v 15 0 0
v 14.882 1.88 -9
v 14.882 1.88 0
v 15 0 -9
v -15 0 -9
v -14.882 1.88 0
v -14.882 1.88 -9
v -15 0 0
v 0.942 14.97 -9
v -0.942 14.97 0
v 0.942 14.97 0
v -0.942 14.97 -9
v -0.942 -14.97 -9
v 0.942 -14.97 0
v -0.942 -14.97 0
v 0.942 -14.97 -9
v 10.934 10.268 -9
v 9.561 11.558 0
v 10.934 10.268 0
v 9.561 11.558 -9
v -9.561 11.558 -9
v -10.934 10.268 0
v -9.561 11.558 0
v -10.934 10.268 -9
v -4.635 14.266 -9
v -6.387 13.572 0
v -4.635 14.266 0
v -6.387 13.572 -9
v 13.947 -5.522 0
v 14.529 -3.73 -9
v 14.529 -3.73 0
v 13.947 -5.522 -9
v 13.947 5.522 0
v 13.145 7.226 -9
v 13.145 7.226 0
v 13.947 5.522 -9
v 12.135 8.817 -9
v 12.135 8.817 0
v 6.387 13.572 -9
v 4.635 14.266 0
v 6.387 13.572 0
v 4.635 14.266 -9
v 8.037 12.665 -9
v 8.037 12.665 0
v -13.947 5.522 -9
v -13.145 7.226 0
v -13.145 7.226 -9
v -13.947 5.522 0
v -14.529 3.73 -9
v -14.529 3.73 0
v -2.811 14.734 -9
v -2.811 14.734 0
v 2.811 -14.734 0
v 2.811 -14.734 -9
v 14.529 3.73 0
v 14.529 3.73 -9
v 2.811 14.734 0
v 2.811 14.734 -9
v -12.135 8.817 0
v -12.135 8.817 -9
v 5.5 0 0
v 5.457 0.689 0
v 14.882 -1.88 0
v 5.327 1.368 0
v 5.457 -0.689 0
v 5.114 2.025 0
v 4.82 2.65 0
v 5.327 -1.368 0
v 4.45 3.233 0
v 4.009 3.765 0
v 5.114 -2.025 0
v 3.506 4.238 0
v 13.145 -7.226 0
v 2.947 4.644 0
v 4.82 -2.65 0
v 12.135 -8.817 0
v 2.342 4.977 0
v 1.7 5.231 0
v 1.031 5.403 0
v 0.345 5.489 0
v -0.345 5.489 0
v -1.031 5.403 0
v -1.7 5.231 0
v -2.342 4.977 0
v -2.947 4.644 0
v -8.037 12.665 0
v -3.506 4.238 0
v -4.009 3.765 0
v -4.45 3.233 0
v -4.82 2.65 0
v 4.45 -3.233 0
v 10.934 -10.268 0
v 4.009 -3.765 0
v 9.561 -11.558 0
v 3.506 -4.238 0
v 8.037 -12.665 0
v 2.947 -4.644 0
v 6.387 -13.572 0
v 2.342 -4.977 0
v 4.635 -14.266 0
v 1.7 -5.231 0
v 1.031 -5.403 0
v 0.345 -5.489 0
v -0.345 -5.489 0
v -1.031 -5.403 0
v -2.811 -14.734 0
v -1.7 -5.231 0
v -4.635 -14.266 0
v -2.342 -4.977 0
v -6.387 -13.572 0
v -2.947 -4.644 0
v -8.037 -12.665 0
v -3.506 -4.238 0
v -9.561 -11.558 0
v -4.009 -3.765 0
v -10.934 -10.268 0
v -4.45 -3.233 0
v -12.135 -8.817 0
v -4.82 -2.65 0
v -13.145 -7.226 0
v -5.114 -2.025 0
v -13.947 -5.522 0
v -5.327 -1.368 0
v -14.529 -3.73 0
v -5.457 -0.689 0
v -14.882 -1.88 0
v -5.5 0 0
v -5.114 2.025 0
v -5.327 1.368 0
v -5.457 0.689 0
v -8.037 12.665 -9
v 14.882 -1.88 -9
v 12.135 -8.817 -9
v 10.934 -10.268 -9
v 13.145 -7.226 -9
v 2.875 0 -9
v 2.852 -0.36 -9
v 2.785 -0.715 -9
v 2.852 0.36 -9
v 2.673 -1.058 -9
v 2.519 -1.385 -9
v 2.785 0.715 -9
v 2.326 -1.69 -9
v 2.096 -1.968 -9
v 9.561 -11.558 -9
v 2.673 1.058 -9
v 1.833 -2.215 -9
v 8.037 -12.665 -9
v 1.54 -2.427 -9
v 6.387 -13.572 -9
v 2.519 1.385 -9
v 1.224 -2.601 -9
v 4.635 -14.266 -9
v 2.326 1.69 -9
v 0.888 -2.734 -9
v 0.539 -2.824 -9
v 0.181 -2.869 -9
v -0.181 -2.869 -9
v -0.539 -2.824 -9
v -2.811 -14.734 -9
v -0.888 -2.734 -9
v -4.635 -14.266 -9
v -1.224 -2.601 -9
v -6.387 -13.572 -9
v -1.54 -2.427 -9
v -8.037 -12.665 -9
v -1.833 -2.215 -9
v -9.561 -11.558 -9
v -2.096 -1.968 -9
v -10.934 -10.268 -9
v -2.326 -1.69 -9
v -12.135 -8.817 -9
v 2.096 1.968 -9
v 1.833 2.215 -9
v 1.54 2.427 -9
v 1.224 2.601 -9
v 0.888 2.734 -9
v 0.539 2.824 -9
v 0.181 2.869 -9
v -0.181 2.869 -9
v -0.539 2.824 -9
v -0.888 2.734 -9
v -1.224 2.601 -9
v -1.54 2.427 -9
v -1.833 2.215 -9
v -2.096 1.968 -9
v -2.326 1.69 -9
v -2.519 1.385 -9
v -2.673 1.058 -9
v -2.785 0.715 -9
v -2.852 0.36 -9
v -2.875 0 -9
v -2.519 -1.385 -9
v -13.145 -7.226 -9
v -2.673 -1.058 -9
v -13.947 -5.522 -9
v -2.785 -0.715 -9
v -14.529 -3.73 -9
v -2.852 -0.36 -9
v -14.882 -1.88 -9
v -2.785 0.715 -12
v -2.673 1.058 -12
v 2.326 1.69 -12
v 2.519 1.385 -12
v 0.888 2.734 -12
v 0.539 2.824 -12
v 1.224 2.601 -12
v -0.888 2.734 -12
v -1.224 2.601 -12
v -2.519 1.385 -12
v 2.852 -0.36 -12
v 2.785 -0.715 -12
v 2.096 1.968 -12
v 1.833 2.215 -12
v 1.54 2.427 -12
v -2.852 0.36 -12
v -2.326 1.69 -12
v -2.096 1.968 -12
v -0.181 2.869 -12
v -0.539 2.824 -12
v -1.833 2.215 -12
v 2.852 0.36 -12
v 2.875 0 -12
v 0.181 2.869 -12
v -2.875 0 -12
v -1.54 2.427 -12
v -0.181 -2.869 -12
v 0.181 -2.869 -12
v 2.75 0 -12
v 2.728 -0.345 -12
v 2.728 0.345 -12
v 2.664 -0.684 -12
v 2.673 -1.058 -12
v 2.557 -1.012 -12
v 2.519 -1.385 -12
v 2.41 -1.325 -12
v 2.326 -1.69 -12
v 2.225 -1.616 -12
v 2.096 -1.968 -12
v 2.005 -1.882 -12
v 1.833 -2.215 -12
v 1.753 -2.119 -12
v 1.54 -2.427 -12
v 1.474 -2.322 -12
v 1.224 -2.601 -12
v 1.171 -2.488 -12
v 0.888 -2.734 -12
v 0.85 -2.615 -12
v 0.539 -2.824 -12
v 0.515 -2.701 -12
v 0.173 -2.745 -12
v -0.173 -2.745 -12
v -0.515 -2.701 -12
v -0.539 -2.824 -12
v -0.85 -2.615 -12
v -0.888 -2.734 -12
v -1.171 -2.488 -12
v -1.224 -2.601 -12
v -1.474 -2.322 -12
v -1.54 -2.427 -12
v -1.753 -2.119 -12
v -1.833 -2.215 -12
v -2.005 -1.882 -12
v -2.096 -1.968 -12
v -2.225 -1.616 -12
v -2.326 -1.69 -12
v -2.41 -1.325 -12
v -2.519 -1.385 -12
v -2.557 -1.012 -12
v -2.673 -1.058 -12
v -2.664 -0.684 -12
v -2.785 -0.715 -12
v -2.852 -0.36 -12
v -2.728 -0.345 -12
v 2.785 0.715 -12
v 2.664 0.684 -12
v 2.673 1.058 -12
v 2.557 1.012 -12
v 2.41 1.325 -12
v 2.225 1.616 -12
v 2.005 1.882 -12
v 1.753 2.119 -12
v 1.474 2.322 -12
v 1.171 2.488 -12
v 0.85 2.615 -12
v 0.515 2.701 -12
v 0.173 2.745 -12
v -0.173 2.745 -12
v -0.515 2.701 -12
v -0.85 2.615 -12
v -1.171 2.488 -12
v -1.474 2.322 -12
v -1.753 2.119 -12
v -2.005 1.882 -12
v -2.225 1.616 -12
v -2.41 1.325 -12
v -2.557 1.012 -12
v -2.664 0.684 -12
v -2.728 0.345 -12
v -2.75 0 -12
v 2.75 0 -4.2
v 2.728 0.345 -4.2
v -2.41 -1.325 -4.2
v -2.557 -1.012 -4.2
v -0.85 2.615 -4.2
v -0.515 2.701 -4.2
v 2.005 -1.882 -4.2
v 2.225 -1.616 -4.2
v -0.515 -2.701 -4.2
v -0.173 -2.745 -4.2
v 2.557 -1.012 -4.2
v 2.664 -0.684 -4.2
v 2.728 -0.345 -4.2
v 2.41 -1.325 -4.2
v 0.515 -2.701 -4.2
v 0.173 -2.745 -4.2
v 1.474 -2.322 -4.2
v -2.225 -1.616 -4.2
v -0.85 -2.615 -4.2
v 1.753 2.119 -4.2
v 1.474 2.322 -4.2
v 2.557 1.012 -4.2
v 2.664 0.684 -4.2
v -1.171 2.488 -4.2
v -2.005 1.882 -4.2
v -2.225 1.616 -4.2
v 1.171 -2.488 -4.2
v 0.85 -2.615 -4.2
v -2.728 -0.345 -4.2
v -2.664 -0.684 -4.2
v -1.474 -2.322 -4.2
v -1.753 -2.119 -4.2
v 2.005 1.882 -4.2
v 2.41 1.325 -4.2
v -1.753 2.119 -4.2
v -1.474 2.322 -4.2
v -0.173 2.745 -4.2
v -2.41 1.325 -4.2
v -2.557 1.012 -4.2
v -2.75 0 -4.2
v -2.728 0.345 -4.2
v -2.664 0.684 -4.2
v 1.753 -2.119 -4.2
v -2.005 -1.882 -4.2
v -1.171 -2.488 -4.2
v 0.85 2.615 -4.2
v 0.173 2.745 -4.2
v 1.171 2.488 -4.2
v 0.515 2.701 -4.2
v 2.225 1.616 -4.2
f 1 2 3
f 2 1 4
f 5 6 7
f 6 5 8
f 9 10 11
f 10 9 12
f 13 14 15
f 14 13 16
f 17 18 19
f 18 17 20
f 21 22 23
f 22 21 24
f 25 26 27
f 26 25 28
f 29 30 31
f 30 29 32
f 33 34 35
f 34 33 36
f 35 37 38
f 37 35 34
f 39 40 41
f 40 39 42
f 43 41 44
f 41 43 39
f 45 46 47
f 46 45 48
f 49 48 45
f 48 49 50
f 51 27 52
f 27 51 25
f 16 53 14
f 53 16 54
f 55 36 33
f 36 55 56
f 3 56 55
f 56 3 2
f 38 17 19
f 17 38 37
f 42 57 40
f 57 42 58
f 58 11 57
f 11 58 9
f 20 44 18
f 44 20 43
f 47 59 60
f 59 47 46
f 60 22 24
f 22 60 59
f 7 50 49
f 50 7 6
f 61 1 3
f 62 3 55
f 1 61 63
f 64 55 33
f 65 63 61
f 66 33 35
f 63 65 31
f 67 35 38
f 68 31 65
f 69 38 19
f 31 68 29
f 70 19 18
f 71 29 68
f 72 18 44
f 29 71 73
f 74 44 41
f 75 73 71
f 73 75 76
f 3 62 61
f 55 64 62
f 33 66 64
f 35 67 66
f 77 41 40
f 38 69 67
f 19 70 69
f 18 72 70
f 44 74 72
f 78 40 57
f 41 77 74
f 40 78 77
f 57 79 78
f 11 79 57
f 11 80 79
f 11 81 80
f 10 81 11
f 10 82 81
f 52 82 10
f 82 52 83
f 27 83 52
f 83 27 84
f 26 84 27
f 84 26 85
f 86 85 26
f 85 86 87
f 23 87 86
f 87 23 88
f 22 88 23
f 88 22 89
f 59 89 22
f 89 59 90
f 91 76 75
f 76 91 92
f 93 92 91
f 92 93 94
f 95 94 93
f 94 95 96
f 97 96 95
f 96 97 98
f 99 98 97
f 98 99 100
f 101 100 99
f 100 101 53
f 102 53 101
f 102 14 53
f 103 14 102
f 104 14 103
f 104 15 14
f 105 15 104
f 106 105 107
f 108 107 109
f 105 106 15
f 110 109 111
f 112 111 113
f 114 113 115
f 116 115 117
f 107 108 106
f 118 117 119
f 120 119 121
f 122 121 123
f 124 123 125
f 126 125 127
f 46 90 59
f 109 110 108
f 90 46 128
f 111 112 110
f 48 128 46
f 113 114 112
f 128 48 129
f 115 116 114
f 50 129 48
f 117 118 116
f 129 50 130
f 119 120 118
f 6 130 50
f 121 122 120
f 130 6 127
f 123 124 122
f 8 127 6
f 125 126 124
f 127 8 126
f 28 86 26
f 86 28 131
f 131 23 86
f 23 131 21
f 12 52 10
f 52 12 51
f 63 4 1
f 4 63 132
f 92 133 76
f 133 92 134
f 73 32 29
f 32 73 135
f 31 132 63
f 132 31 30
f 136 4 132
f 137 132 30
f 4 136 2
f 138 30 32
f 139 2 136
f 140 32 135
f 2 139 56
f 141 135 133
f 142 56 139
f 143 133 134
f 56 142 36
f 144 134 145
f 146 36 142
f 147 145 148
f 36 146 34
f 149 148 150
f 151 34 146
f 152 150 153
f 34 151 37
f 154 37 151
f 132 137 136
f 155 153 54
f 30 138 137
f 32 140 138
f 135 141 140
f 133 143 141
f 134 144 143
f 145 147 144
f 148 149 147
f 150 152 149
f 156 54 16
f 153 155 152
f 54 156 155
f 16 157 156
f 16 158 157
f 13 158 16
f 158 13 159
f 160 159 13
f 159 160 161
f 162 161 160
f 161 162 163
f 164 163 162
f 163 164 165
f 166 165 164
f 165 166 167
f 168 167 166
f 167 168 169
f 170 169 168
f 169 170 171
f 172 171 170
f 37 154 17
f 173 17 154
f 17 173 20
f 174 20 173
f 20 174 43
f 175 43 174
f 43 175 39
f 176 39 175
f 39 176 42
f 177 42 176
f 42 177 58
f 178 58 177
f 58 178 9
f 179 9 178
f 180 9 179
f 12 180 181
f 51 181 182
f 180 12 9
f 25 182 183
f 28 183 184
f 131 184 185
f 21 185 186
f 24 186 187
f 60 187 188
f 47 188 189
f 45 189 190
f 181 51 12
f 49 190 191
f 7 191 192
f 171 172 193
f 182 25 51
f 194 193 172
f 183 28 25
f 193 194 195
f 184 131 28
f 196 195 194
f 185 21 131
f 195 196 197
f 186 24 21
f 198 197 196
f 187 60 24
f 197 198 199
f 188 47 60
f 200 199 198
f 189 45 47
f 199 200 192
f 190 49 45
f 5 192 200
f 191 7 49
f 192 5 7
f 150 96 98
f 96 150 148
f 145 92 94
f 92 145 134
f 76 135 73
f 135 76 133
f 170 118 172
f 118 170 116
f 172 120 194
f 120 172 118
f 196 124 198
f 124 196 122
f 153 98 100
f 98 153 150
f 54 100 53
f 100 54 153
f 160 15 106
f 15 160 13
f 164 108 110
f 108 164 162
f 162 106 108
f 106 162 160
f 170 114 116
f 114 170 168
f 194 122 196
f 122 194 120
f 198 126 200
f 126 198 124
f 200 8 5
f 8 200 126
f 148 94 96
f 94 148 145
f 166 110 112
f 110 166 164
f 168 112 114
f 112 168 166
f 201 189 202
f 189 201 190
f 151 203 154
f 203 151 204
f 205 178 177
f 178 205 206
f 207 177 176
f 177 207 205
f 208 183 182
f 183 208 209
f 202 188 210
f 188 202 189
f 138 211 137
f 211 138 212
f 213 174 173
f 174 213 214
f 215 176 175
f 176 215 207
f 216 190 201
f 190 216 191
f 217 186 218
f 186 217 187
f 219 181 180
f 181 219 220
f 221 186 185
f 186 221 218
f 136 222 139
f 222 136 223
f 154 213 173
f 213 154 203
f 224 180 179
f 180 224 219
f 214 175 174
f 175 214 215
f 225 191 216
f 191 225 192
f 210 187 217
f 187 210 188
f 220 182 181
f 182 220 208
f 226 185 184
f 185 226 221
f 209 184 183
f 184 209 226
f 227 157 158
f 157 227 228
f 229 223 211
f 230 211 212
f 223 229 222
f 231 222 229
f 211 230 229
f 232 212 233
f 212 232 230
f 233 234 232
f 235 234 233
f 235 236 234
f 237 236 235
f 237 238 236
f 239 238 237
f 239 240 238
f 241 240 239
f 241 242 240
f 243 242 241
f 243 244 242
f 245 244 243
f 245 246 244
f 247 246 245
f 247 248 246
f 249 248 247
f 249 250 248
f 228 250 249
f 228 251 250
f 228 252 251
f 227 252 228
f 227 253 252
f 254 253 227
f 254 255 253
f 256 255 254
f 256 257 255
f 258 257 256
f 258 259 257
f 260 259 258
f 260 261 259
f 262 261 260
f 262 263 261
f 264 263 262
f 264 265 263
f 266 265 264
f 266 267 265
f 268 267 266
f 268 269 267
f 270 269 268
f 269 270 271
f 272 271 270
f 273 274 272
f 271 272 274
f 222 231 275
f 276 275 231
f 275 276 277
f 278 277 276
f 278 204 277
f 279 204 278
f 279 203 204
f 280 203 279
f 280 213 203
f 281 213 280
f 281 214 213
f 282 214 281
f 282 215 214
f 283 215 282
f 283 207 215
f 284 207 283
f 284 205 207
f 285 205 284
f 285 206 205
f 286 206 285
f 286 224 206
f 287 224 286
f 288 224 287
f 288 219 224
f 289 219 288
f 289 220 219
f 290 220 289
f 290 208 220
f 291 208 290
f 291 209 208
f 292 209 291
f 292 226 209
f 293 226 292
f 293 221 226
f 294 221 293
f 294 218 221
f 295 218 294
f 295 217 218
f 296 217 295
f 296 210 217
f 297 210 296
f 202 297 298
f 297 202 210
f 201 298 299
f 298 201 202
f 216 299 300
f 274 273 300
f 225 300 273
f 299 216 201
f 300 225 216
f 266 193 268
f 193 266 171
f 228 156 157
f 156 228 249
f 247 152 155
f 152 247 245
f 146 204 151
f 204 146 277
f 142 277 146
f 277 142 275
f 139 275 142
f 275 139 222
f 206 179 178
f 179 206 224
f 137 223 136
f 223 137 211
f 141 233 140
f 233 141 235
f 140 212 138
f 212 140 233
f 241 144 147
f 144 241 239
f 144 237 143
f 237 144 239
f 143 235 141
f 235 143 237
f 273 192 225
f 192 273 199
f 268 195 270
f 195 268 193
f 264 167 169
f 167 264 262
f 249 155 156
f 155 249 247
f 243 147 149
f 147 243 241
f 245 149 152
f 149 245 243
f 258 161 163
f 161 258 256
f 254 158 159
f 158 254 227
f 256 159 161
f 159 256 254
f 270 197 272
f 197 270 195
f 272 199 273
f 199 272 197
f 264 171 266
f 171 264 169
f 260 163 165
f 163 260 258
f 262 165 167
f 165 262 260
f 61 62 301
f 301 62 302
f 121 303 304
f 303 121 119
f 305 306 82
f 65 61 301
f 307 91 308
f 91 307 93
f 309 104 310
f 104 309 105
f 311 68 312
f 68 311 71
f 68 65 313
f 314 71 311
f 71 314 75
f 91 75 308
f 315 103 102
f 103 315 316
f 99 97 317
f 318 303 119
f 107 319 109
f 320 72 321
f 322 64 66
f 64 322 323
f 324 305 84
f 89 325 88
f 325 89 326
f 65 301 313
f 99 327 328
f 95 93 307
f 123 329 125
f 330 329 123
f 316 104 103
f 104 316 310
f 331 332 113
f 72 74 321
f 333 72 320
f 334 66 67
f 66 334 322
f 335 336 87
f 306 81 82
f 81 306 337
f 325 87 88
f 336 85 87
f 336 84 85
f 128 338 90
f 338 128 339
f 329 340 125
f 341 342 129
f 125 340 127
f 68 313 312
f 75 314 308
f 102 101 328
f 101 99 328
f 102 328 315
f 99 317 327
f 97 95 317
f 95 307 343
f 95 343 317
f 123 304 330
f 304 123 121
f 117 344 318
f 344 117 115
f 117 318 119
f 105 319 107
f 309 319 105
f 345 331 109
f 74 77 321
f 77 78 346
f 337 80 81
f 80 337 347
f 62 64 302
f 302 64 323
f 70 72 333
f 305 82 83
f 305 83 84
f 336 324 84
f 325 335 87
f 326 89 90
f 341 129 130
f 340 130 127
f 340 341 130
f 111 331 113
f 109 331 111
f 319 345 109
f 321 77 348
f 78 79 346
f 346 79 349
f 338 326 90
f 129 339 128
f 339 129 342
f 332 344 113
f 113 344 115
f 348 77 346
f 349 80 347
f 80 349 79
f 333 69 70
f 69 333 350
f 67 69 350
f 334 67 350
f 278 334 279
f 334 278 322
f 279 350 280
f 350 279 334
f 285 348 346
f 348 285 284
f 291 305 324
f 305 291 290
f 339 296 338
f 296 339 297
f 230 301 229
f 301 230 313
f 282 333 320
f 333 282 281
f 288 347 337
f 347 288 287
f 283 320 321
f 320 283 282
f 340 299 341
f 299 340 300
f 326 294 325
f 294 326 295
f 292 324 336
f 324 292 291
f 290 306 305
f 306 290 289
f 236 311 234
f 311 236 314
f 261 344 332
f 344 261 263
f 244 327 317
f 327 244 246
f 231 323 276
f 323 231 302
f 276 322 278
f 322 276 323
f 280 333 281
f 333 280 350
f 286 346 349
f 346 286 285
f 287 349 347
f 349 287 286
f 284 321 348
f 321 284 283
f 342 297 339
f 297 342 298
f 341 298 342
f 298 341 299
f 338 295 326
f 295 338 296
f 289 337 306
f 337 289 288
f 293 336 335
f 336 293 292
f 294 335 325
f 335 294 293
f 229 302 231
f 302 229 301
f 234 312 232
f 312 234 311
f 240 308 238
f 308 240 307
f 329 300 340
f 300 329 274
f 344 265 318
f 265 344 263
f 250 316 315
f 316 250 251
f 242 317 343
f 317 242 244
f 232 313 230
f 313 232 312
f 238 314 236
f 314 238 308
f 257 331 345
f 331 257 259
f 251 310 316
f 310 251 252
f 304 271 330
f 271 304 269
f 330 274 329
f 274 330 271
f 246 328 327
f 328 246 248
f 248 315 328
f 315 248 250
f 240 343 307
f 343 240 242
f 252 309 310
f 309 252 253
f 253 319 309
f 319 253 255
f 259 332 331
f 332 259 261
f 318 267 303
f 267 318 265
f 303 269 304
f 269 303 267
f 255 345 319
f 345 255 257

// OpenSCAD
$fn = 50;


difference() {
	union() {
		translate(v = [0, 0, -9.0000000000]) {
			cylinder(h = 9, r = 15.0000000000);
		}
		translate(v = [0, 0, -12.0000000000]) {
			cylinder(h = 12, r = 2.8750000000);
		}
	}
	union() {
		translate(v = [0, 0, 0]) {
			rotate(a = [0, 0, 0]) {
				difference() {
					union() {
						translate(v = [0, 0, -12.0000000000]) {
							cylinder(h = 12, r = 2.2500000000);
						}
						translate(v = [0, 0, -4.2000000000]) {
							cylinder(h = 4.2000000000, r1 = 2.7500000000, r2 = 5.5000000000);
						}
						translate(v = [0, 0, -12.0000000000]) {
							cylinder(h = 12, r = 2.7500000000);
						}
						translate(v = [0, 0, -12.0000000000]) {
							cylinder(h = 12, r = 2.2500000000);
						}
					}
					union();
				}
			}
		}
	}
}
